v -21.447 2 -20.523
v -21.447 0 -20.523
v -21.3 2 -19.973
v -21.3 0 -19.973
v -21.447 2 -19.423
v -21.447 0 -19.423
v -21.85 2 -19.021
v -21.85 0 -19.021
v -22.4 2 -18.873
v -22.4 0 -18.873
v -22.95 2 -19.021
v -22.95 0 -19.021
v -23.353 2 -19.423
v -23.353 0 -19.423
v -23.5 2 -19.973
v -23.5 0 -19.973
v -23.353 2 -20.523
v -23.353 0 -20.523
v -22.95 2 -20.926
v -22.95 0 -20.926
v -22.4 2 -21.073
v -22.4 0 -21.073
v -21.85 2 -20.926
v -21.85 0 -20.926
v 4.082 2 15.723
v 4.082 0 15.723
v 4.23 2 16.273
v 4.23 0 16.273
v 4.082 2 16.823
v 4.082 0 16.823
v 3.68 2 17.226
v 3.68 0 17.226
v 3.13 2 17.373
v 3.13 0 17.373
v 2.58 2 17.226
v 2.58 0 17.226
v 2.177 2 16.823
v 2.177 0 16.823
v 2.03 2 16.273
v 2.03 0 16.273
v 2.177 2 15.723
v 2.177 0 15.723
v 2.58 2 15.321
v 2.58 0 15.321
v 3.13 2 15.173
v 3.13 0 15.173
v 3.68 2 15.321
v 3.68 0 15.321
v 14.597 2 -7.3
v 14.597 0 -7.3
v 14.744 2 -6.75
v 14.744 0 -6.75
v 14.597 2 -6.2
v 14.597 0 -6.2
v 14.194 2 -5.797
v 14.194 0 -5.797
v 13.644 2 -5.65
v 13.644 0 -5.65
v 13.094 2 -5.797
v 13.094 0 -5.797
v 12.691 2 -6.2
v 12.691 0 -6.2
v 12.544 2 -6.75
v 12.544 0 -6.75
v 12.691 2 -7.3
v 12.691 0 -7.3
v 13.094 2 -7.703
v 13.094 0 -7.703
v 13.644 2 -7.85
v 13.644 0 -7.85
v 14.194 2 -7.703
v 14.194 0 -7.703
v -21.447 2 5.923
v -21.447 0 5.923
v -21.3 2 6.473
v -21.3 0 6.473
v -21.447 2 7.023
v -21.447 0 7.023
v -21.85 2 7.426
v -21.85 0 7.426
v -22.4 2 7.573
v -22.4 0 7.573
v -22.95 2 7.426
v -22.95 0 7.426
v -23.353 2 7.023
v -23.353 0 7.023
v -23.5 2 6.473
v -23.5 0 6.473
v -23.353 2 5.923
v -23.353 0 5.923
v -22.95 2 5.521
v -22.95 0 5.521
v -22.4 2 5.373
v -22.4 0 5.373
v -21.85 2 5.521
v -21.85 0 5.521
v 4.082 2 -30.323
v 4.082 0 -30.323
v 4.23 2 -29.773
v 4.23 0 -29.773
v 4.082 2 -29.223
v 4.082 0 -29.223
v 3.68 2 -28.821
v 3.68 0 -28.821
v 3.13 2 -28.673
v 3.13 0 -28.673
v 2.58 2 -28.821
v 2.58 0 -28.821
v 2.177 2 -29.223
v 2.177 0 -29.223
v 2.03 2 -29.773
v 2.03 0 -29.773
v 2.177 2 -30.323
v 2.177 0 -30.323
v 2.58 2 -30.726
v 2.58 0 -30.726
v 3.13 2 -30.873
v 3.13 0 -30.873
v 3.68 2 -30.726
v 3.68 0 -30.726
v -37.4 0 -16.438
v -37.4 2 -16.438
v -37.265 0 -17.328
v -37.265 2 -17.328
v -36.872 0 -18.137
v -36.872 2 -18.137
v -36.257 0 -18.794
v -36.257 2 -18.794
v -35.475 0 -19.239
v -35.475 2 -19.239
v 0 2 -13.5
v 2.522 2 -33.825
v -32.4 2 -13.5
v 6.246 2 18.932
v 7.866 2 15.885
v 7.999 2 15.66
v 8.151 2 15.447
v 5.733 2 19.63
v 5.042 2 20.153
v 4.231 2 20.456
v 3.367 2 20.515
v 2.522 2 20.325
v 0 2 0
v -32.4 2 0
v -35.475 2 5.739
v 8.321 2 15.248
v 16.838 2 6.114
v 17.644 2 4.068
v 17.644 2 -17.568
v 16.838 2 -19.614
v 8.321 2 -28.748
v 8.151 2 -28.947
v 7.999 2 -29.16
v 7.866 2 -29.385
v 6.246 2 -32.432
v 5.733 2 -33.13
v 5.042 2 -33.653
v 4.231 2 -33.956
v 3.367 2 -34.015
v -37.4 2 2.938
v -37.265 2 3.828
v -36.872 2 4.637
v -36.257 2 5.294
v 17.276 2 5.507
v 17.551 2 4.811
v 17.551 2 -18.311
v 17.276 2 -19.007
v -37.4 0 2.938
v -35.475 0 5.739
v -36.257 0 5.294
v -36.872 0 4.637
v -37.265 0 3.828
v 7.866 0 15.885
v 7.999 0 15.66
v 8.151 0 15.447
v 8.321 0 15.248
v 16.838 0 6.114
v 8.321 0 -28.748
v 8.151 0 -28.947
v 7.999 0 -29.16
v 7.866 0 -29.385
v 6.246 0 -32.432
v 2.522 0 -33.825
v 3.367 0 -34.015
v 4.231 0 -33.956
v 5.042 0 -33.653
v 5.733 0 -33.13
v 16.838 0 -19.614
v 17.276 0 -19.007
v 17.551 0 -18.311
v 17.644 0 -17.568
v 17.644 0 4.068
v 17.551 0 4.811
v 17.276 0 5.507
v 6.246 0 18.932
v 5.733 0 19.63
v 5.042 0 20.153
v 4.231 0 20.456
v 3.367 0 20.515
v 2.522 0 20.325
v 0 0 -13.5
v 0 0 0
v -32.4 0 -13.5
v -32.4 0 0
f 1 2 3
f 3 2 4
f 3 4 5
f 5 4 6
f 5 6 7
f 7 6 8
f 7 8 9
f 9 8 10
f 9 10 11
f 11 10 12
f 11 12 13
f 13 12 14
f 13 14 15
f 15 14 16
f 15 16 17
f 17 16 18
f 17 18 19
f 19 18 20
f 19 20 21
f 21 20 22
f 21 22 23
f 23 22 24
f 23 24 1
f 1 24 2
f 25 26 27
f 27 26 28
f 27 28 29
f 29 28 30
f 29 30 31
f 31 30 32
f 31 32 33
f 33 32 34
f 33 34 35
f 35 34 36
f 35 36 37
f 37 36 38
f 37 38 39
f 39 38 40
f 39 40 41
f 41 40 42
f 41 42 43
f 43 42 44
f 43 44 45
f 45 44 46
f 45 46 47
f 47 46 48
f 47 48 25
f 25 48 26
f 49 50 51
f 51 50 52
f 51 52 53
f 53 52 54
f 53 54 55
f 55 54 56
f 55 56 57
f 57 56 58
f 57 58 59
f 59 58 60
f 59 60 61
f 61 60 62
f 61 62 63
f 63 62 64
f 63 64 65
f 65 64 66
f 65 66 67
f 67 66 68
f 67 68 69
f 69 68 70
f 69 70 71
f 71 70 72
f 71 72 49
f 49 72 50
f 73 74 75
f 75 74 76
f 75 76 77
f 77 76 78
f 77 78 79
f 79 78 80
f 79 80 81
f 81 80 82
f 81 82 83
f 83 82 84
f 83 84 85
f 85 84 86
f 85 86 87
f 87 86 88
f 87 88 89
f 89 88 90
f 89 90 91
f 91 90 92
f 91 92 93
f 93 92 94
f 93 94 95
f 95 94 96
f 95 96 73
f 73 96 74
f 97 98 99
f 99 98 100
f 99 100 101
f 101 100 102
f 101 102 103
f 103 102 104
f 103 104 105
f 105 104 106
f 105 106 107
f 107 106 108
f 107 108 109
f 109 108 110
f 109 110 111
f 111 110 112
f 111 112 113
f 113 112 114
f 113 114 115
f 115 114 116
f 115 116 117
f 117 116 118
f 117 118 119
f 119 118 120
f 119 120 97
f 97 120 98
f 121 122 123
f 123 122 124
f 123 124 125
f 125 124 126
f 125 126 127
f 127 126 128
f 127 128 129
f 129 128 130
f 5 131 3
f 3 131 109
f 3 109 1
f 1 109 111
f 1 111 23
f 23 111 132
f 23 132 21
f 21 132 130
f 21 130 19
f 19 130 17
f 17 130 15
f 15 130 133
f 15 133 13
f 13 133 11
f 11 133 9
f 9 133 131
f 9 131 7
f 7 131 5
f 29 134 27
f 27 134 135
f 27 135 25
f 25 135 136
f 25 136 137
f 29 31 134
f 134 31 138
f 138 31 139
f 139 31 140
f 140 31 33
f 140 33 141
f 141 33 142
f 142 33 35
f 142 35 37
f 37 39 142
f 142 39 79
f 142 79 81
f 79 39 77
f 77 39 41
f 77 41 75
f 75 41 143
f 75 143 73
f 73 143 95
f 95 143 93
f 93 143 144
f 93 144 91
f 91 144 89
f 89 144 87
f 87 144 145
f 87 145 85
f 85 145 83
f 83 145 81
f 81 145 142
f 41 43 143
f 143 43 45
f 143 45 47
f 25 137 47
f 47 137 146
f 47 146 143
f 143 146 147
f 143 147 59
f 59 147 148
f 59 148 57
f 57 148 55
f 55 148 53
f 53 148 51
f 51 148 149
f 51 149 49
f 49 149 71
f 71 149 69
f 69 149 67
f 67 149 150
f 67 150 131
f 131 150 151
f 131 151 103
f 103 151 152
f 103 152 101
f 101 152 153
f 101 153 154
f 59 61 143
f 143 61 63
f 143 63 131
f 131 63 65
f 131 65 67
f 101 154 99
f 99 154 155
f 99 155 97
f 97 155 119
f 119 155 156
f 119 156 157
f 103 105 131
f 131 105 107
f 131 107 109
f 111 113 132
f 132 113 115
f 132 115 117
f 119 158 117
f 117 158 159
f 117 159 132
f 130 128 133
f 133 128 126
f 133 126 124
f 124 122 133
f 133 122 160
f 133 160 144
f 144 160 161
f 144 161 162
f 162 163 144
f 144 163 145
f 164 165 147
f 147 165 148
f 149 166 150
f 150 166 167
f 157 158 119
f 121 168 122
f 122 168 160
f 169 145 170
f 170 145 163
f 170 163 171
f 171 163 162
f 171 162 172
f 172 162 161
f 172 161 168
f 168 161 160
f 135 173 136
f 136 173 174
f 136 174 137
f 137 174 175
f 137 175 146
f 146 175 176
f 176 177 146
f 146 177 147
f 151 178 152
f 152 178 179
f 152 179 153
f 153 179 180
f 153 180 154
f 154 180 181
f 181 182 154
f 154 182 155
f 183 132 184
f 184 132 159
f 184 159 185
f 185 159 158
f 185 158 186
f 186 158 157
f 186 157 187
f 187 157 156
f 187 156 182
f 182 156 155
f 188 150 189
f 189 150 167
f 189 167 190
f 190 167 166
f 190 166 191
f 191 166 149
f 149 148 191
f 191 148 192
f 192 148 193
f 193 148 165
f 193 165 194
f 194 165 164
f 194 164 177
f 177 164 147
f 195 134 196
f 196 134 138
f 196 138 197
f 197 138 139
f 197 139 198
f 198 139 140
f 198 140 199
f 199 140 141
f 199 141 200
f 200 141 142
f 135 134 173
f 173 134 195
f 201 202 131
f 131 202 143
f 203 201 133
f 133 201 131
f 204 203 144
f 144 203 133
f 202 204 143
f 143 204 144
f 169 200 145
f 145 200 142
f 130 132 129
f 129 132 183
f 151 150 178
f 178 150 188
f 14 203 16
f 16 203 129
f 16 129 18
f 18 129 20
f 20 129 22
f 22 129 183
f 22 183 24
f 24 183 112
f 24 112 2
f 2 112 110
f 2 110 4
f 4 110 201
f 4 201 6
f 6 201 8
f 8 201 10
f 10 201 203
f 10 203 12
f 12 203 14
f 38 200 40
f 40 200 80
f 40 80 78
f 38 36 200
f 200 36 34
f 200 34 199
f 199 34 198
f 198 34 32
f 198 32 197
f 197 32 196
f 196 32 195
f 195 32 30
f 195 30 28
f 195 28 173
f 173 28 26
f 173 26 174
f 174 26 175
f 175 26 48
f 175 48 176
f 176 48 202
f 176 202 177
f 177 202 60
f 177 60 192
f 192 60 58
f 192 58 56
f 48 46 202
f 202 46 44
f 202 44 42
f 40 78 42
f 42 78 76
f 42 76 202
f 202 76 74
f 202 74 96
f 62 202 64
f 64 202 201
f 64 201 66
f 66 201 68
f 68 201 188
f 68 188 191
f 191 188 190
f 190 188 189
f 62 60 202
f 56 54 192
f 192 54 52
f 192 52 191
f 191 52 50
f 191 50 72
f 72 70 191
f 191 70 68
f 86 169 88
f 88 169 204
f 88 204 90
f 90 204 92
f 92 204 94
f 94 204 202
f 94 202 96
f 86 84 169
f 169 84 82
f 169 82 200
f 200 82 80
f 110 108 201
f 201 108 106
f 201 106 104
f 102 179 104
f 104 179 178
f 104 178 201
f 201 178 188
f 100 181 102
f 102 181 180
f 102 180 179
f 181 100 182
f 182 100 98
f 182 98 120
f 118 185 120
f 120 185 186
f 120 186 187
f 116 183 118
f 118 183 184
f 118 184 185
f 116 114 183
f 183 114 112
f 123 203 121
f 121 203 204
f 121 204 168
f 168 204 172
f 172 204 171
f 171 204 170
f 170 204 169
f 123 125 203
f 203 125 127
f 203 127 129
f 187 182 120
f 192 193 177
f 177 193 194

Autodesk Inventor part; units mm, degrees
ref_plane "YZ Plane" through (0, 0, 0) normal (1, 0, 0) x (0, 1, 0)
ref_plane "XZ Plane" through (0, 0, 0) normal (0, 1, 0) x (-1, 0, 0)
ref_plane "XY Plane" through (0, 0, 0) normal (0, 0, 1) x (1, 0, 0)
sketch "Sketch1" plane through (0, 0, 0) normal (0, 1, 0) x (-1, 0, 0)
  line L0 (0, 0) -> (32.4, 0)
  line L1 (32.4, 0) -> (32.4, -13.5)
  line L2 (32.4, -13.5) -> (0, -13.5)
  line L3 (0, -13.5) -> (0, 0)
  line L4 (-5, 5) -> (37.4, 5)
  line L5 (37.4, 5) -> (37.4, -18.5)
  line L6 (37.4, -18.5) -> (-5, -18.5)
  line L7 (-5, -18.5) -> (-5, 5)
  line L8 (37.4, 5) -> (-5, 21.2758)
  line L9 (-5, 21.2758) -> (-5, -34.7758)
  line L10 (-5, -34.7758) -> (37.4, -18.5)
  line L11 (-5, 21.2758) -> (-8.0516, 15.5367)
  line L12 (-8.0516, 15.5367) -> (-17.644, 5.25)
  line L13 (-17.644, 5.25) -> (-17.644, -18.75)
  line L14 (-17.644, -18.75) -> (-8.0516, -29.0367)
  line L15 (-8.0516, -29.0367) -> (-5, -34.7758)
  point P0 (-5, -6.75)
  dimension "d0" = 32.4
  dimension "d1" = 13.5
  dimension "d2" = 5
  dimension "d5" = 21
  dimension "d6" = 21
  dimension "d8" = 28
  dimension "d9" = 28
  dimension "d11" = 6.5
  dimension "d12" = 24
  dimension "d13" = 6.5
  dimension "d15" = 165
  dimension "d16" = 165
extrude "Extrusion1" add sketch "Sketch1" along normal blind 2
fillet "Fillet1" radius 3 8 edges at (5, 1, 21.2758) (17.644, 1, 5.25) (17.644, 1, -18.75) (5, 1, -34.7758) (8.0516, 1, -29.0367) (8.0516, 1, 15.5367) (-37.4, 1, 5) (-37.4, 1, -18.5)
sketch "Sketch2" plane through (0, 2, 0) normal (0, 1, 0) x (1, 0, 0)
  circle A0 centre (3.1296, -16.2733) radius 1.1
  circle A1 centre (3.1296, 29.7733) radius 1.1
  circle A2 centre (13.644, 6.75) radius 1.1
  circle A3 centre (-22.4, -6.4734) radius 1.1
  circle A4 centre (-22.4, 19.9734) radius 1.1
  arc A5 (-35.4751, 19.2389) -> (-37.4, 16.4382) centre (-34.4, 16.4382) ccw projected
  line L0 (-37.4, 16.4382) -> (-37.4, -2.9382) projected
  arc A6 (-37.4, -2.9382) -> (-35.4751, -5.7389) centre (-34.4, -2.9382) ccw projected
  line L1 (-35.4751, -5.7389) -> (2.5221, -20.3247) projected
  arc A7 (2.5221, -20.3247) -> (6.2461, -18.9323) centre (3.5972, -17.5239) ccw projected
  line L2 (6.2461, -18.9323) -> (7.8661, -15.8854) projected
  arc A8 (8.3209, -15.2478) -> (7.8661, -15.8854) centre (10.515, -17.2938) ccw projected
  line L3 (8.3209, -15.2478) -> (16.8381, -6.1143) projected
  arc A9 (16.8381, -6.1143) -> (17.644, -4.0683) centre (14.644, -4.0683) ccw projected
  line L4 (17.644, -4.0683) -> (17.644, 17.5683) projected
  arc A10 (17.644, 17.5683) -> (16.8381, 19.6143) centre (14.644, 17.5683) ccw projected
  line L5 (16.8381, 19.6143) -> (8.3209, 28.7478) projected
  arc A11 (7.8661, 29.3854) -> (8.3209, 28.7478) centre (10.515, 30.7938) ccw projected
  line L6 (7.8661, 29.3854) -> (6.2461, 32.4323) projected
  arc A12 (6.2461, 32.4323) -> (2.5221, 33.8247) centre (3.5972, 31.0239) ccw projected
  line L7 (2.5221, 33.8247) -> (-35.4751, 19.2389) projected
  line L8 (0, 0) -> (-32.4, 0) projected
  line L9 (-32.4, 0) -> (-32.4, 13.5) projected
  line L10 (-32.4, 13.5) -> (0, 13.5) projected
  line L11 (0, 13.5) -> (0, 0) projected
  point P0 (17.644, 6.75)
  dimension "d18" = 2.2
  dimension "d19" = 2.2
  dimension "d20" = 2.2
  dimension "d21" = 2.2
  dimension "d22" = 2.2
  dimension "d23" = 4
  dimension "d25" = 15
  dimension "d26" = 4
  dimension "d27" = 4
  dimension "d28" = 4
  dimension "d29" = 4
  dimension "d30" = 4
extrude "Extrusion2" cut sketch "Sketch2" against normal up to surface (2 mm away) contours A0 | A1 | A2 | A3 | A4
equation "\"d6\" = d5"
equation "\"d9\" = d8"
equation "\"d13\" = d11"
equation "\"d16\" = d15"
equation "\"d23\" = d28"
equation "\"d26\" = d28"
equation "\"d27\" = d28"
equation "\"d29\" = d28"
equation "\"d30\" = d26"
equation "\"BendRadius\" = Thickness"
equation "\"BendReliefWidth\" = Thickness"
equation "\"BendReliefDepth\" = 0.5 * Thickness"
equation "\"CornerReliefSize\" = 4 * Thickness"
equation "\"MinimumRemnant\" = 2 * Thickness"
equation "\"TransitionRadius\" = BendRadius"
equation "\"JacobiRadiusSize\" = BendRadius"
equation "\"GapSize\" = Thickness"
equation "\"Thickness\" = 3.048"
properties part number "Screen Cover"
